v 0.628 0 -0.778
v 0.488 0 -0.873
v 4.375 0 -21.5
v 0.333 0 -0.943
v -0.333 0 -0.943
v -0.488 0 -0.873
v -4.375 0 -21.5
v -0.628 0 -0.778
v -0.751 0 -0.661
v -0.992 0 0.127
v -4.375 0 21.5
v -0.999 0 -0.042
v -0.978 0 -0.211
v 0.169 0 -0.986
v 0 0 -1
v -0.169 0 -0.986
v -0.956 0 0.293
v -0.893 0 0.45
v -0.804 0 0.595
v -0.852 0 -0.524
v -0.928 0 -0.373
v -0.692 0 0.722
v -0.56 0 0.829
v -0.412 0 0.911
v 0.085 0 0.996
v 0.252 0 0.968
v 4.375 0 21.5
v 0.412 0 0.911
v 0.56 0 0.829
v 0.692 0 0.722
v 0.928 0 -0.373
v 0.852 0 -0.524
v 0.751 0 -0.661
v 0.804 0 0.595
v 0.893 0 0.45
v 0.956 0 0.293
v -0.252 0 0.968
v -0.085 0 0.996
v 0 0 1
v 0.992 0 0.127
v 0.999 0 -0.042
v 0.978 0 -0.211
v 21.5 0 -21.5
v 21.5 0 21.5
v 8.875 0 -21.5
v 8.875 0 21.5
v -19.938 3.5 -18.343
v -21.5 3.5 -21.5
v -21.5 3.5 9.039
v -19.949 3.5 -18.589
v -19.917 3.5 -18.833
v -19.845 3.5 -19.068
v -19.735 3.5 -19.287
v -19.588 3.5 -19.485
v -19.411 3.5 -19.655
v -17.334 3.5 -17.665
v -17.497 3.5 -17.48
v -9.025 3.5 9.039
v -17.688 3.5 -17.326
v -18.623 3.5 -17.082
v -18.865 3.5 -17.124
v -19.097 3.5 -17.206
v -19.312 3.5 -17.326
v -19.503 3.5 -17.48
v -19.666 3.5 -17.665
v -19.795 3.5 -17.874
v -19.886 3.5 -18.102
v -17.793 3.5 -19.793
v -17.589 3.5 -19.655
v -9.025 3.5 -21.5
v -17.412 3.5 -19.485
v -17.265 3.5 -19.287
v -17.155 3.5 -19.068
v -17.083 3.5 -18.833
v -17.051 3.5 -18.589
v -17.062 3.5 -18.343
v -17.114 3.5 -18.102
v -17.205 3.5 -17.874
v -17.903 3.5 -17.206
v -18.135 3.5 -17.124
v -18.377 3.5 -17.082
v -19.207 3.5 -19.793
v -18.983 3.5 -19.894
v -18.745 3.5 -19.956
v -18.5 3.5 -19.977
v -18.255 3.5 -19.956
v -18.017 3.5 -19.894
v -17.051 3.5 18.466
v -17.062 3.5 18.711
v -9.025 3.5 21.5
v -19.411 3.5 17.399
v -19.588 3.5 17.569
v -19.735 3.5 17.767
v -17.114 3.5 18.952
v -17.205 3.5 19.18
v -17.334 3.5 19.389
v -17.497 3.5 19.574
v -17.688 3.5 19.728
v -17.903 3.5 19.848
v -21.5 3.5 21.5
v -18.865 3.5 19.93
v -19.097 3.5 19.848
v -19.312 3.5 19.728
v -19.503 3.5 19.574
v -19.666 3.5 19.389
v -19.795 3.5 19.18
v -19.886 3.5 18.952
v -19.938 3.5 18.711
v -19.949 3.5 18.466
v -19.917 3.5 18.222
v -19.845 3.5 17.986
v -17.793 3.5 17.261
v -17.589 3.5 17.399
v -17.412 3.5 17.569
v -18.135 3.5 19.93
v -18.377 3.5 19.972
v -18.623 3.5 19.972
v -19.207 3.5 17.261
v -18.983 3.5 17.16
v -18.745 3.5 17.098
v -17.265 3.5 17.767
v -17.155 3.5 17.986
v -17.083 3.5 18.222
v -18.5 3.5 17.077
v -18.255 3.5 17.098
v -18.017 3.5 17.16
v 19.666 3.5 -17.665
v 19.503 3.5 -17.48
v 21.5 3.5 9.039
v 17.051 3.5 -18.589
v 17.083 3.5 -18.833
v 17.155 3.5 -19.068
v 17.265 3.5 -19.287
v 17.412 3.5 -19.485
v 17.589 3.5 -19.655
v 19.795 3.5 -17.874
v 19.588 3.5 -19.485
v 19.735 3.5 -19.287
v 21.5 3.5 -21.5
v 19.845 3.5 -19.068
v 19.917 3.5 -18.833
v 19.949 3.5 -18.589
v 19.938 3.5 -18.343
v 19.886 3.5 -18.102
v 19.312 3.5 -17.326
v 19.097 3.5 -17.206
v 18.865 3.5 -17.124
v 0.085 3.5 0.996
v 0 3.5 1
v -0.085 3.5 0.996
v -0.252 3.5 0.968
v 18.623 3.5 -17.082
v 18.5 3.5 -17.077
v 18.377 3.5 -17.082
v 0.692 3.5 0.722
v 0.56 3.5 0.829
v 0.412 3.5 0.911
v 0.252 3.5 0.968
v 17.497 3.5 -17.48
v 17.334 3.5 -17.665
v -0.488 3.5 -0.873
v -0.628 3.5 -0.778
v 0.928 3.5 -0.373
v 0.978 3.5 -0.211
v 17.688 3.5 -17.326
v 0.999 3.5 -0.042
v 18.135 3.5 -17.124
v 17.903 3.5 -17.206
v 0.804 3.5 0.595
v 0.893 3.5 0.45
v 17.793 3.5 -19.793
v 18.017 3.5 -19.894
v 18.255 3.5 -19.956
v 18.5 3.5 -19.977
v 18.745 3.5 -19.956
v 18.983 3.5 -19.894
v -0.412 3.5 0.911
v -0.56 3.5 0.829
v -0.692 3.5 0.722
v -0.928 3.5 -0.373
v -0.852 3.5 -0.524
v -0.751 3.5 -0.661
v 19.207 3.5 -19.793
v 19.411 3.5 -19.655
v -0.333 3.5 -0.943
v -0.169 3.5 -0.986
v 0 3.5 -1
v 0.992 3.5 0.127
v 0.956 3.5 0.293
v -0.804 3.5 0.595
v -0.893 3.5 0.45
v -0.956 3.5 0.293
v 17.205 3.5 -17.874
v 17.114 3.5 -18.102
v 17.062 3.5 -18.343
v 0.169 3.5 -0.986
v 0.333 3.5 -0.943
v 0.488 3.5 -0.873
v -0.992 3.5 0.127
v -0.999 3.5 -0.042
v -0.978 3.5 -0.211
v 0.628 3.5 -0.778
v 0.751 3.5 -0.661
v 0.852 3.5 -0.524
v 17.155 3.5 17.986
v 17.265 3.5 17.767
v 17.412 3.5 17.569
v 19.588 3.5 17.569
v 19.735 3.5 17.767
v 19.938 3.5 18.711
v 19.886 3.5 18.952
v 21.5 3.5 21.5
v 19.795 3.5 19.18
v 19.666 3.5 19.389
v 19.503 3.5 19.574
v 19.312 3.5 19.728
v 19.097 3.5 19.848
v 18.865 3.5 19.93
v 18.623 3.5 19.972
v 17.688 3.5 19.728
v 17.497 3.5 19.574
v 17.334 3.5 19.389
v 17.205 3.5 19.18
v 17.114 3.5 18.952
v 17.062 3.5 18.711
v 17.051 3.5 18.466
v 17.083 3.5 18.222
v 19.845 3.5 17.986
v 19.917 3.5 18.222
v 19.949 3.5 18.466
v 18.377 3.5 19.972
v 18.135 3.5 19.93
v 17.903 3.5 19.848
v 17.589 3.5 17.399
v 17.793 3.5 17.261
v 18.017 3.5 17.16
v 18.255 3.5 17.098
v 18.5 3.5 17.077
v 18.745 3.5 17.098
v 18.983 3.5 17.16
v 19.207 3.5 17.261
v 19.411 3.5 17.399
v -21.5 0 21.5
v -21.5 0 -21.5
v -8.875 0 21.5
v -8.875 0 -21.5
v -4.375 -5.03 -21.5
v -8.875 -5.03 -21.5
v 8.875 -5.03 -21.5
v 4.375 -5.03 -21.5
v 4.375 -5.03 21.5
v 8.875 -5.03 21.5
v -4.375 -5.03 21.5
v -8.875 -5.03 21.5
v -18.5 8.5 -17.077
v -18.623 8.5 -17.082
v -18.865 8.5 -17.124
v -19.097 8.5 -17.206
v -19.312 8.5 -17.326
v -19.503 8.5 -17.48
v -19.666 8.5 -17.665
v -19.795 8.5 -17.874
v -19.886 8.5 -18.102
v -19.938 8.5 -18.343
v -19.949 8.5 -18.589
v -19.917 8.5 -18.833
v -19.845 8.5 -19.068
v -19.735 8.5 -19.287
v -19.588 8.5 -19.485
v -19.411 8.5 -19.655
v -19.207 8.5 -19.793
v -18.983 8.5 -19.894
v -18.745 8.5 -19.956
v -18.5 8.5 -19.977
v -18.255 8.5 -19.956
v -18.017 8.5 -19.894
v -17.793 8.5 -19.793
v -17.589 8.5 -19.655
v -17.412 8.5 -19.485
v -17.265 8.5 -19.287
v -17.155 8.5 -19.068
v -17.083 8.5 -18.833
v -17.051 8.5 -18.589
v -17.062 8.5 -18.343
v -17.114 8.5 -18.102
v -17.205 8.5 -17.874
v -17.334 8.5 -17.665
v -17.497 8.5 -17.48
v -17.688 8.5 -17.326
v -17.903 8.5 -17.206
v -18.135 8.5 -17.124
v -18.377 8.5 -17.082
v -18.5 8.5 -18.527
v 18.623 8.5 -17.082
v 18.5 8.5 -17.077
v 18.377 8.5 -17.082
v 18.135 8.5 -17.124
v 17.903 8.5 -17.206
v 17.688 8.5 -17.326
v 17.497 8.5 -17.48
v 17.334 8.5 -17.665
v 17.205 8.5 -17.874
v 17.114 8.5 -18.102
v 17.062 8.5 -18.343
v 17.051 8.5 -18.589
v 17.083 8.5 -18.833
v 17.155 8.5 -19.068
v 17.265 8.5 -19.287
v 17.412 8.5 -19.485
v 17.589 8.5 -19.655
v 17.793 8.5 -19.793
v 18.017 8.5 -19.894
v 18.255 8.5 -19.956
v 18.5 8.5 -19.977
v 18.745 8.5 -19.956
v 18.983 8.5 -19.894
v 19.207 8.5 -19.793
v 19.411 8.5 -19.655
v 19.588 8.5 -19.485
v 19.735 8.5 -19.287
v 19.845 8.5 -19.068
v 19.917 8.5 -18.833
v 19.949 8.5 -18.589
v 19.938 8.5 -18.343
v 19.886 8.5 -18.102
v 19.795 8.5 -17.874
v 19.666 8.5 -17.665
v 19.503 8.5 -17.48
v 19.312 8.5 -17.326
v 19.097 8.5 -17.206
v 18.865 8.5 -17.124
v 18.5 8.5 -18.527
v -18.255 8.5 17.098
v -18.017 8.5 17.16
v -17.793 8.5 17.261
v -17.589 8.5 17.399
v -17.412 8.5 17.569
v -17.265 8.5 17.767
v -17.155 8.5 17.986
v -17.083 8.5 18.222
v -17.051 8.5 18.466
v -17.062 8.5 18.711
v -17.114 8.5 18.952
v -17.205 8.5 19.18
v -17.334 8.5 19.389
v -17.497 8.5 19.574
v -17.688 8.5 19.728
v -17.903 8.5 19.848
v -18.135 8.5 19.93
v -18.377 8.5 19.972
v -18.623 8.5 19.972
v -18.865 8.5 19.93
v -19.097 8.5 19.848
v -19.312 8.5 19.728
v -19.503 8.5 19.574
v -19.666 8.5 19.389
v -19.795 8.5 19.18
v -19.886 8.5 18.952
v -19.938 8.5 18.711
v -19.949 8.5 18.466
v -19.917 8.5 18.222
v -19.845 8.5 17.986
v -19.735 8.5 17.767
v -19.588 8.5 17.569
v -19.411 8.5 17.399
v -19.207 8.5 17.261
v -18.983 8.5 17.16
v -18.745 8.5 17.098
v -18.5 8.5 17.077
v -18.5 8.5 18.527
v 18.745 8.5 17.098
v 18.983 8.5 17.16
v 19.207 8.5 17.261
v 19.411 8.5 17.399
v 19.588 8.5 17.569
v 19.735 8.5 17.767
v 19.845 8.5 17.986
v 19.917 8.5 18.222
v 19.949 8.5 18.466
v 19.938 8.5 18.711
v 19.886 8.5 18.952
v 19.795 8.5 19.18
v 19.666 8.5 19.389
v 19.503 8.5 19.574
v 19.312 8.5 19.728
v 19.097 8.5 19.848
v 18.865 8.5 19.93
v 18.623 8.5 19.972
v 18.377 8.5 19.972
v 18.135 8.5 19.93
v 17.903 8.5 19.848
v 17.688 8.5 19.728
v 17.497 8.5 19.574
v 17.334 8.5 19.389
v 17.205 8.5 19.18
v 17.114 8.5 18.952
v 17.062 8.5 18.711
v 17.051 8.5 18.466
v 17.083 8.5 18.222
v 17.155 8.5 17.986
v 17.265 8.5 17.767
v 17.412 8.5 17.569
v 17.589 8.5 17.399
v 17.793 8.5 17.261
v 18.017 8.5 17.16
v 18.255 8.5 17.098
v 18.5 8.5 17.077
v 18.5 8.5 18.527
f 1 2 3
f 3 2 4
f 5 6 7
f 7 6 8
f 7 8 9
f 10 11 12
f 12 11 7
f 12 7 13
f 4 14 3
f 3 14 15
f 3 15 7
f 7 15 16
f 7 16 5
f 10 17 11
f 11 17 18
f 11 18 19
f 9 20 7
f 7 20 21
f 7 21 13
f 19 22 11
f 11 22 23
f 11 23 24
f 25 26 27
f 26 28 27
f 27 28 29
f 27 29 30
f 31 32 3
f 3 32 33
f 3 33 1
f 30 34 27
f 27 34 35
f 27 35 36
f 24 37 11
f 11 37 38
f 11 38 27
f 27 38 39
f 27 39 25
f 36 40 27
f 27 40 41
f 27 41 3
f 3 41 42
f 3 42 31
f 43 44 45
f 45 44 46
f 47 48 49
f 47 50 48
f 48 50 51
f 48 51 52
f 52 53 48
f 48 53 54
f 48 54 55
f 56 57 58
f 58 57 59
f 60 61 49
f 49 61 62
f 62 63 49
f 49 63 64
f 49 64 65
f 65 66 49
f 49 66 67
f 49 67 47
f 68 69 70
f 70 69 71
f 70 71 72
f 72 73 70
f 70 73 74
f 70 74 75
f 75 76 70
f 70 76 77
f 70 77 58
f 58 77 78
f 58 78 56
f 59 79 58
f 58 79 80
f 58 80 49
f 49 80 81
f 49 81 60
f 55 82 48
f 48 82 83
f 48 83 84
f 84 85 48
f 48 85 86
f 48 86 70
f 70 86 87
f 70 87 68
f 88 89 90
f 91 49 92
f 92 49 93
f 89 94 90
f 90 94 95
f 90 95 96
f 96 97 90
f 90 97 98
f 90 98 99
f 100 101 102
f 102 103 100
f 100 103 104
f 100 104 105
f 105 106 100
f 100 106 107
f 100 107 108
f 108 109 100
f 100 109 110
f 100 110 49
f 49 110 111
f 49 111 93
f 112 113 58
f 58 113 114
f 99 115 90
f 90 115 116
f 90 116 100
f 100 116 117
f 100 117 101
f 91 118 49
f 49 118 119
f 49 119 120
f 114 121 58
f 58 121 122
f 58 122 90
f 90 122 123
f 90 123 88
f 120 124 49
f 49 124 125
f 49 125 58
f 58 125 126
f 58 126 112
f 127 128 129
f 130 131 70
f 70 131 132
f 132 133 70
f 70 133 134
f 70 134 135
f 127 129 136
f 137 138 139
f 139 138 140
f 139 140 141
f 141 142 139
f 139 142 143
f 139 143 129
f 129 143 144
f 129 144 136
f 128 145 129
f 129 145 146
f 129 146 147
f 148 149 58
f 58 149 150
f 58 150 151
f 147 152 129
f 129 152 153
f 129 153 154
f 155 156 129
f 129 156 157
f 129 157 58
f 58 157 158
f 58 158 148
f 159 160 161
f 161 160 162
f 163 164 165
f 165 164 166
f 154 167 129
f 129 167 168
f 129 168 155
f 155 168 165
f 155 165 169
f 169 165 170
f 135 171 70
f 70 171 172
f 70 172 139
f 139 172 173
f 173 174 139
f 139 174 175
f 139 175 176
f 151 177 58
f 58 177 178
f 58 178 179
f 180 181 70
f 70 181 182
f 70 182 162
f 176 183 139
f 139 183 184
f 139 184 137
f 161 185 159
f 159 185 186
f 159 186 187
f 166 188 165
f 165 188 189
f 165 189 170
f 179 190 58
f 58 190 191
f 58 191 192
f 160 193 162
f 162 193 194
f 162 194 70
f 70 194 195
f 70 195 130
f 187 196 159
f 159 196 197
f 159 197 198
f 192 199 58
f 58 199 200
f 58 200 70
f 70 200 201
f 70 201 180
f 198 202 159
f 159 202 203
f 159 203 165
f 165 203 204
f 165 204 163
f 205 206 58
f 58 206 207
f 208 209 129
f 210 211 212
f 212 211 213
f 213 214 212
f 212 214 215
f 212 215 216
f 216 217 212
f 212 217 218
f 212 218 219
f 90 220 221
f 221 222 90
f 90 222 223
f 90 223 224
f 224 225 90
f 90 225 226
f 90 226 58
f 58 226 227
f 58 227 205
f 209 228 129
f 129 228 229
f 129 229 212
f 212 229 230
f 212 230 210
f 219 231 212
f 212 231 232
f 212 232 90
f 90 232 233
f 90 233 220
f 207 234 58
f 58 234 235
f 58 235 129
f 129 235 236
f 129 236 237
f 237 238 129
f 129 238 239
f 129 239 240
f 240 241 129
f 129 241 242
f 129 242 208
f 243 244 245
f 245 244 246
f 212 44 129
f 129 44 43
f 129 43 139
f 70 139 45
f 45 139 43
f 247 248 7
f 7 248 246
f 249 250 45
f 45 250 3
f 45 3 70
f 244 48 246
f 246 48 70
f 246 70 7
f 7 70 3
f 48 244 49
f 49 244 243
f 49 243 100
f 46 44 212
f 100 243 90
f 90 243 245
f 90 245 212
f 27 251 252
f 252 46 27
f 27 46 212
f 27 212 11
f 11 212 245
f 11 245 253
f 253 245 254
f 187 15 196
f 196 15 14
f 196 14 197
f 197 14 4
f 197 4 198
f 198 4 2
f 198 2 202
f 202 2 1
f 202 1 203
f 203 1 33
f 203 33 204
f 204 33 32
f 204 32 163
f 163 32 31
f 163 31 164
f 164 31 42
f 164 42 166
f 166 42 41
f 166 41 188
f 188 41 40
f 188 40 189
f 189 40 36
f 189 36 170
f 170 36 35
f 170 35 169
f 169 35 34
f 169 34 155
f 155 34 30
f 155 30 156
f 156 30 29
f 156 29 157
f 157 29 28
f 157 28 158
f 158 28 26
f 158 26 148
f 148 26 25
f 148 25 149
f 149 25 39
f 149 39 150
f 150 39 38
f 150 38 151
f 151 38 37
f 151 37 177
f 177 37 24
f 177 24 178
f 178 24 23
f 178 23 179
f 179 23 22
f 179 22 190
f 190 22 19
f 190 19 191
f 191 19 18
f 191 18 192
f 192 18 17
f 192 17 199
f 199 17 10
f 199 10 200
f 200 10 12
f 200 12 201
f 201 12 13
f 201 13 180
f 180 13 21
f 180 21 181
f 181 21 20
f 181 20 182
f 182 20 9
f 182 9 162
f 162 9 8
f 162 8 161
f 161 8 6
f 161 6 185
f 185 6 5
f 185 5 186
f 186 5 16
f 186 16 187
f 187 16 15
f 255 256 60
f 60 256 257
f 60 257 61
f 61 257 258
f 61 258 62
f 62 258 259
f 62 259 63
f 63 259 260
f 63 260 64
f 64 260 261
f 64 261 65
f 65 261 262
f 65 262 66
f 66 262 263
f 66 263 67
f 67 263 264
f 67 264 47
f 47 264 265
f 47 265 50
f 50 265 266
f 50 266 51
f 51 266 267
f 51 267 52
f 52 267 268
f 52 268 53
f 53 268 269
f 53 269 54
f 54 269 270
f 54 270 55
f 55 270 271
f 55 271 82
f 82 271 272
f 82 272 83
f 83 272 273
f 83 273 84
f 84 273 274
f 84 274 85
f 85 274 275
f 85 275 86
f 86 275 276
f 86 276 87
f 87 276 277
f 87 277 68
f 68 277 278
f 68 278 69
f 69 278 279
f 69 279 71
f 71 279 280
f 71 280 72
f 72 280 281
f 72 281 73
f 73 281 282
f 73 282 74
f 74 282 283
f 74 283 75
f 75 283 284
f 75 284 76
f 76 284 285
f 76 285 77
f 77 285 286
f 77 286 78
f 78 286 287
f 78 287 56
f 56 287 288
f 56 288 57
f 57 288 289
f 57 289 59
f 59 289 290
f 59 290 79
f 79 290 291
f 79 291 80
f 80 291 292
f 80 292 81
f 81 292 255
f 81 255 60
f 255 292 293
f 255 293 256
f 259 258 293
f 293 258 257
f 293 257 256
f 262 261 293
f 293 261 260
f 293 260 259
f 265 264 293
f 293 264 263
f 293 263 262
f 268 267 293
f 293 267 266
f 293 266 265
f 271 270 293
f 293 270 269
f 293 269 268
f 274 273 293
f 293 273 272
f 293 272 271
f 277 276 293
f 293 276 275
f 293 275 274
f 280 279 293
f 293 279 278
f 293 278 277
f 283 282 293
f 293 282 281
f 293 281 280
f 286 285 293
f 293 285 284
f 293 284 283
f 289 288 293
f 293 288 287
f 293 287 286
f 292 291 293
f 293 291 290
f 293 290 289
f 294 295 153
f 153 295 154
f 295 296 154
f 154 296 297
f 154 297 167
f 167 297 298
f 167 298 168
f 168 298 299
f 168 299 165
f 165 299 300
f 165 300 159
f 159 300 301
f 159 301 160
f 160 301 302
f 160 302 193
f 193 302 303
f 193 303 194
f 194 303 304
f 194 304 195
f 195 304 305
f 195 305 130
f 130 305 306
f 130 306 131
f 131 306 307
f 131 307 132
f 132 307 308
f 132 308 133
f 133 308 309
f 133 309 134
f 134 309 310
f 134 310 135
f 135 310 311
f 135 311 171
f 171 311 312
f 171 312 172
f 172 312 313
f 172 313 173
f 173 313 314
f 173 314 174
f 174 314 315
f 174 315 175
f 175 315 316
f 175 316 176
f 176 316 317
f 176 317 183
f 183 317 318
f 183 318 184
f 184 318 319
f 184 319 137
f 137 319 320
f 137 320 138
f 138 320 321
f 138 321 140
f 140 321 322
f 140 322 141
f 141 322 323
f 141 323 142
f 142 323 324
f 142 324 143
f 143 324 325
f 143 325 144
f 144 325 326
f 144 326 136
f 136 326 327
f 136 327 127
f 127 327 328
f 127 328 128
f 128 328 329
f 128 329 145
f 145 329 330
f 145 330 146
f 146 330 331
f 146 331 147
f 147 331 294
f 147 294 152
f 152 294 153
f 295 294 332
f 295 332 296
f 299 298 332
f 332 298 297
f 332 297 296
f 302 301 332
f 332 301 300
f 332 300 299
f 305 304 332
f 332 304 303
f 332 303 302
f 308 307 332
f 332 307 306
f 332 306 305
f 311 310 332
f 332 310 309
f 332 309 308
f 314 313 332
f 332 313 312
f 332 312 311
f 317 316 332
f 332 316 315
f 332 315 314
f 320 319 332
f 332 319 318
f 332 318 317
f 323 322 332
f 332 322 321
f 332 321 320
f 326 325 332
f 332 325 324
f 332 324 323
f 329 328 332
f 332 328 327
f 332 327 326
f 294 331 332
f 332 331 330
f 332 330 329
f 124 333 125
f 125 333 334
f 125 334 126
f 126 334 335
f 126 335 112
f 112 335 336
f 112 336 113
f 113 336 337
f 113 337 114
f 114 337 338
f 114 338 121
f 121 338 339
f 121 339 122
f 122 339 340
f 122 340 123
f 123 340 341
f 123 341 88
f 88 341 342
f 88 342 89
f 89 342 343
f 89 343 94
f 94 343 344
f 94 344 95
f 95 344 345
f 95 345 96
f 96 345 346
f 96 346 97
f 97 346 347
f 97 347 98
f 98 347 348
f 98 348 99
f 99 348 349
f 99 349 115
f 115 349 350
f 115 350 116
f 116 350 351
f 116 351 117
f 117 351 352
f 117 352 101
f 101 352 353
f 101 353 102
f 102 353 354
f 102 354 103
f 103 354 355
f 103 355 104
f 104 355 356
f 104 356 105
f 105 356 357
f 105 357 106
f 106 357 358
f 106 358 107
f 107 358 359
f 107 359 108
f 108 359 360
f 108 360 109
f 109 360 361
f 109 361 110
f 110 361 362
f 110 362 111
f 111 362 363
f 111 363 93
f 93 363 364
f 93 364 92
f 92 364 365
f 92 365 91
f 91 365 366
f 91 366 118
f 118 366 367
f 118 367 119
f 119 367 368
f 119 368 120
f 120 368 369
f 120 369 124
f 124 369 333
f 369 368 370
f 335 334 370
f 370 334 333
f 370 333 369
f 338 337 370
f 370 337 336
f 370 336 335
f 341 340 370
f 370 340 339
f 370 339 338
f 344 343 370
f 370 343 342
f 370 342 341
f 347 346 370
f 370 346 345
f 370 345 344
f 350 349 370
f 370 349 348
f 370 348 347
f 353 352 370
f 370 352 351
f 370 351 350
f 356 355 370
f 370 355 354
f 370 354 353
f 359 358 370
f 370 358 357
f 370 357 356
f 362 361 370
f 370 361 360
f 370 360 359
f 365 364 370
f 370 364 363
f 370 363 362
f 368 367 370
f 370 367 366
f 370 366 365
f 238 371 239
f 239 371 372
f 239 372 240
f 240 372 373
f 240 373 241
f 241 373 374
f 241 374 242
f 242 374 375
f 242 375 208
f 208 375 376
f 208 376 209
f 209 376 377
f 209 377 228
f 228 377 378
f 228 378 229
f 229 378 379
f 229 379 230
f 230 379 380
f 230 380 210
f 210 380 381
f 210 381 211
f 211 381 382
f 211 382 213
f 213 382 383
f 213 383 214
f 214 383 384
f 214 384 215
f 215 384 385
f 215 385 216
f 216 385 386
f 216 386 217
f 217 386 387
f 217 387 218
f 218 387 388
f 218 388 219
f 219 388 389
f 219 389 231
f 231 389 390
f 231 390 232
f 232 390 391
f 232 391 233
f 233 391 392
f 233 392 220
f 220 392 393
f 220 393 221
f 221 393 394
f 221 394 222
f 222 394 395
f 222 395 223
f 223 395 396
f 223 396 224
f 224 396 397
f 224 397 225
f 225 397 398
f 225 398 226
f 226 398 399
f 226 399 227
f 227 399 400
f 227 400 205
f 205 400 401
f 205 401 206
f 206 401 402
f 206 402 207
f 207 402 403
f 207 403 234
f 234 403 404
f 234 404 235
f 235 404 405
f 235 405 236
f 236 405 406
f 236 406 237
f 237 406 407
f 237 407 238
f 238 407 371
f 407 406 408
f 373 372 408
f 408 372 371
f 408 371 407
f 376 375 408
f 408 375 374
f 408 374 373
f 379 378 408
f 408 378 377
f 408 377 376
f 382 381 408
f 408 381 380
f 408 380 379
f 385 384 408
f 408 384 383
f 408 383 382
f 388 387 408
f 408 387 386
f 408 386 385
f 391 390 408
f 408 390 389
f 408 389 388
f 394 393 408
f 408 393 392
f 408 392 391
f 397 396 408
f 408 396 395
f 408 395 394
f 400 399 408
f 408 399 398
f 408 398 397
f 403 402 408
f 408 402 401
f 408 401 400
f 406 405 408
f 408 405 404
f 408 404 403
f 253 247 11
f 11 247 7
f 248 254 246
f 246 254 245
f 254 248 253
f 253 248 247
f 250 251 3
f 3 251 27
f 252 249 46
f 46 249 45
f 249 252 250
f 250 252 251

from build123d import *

# Parameters (mm, degrees)
SKETCH1_W                                  = 43
SKETCH1_H                                  = 43
SKETCH1_R                                  = 1
BOSS_EXTRUDE1_DEPTH                        = 3.5
SKETCH3_R                                  = 1.45
BOSS_EXTRUDE2_DEPTH                        = 5
MIRROR2_AT_THE_SECOND_PLANE_COPY_1_SKETC_R = 1.45
MIRROR2_AT_THE_SECOND_PLANE_COPY_1_DEPTH   = 5
SKETCH4_W                                  = 4.5
SKETCH4_H                                  = 43
BOSS_EXTRUDE3_DEPTH                        = 5.03


with BuildPart() as part:
    # Sketch1 → Boss-Extrude1 (new body)
    with BuildSketch(Plane(origin=(0, 0, 0), x_dir=(1, 0, 0), z_dir=(0, 1, 0))):
        Rectangle(SKETCH1_W, SKETCH1_H)
        with Locations(Location((0, 0, 0), (0, 0, 270))):
            Circle(SKETCH1_R, mode=Mode.SUBTRACT)
    extrude(amount=BOSS_EXTRUDE1_DEPTH)

    # Sketch3 → Boss-Extrude2 (add)
    with BuildSketch(Plane(origin=(0, 3.5, 0), x_dir=(1, 0, 0), z_dir=(0, 1, 0))):
        with Locations(Location((-18.5, 18.527041475, 0), (0, 0, 90))):
            Circle(SKETCH3_R)
    boss_extrude2 = extrude(amount=BOSS_EXTRUDE2_DEPTH)

    # Mirror2: Boss-Extrude2 across plane
    add(boss_extrude2.mirror(Plane.XY))

    # Mirror2 at the second plane: Boss-Extrude2 across plane
    add(boss_extrude2.mirror(Plane(origin=(0, 0, 0), x_dir=(0, 0, 1), z_dir=(1, 0, 0))))

    # Mirror2 at the second plane copy 1 sketc → Mirror2 at the second plane copy 1 (add)
    with BuildSketch(Plane(origin=(0, 3.5, 0), x_dir=(-1, 0, 0), z_dir=(0, 1, 0))):
        with Locations(Location((-18.5, 18.527041475, 0), (0, 0, 90))):
            Circle(MIRROR2_AT_THE_SECOND_PLANE_COPY_1_SKETC_R)
    extrude(amount=MIRROR2_AT_THE_SECOND_PLANE_COPY_1_DEPTH)

    # Sketch4 → Boss-Extrude3 (add)
    with BuildSketch(Plane.XZ):
        with Locations((-6.625, 0)):
            Rectangle(SKETCH4_W, SKETCH4_H)
    boss_extrude3 = extrude(amount=BOSS_EXTRUDE3_DEPTH)

    # Mirror3: Boss-Extrude3 across plane
    add(boss_extrude3.mirror(Plane(origin=(0, 0, 0), x_dir=(0, 0, 1), z_dir=(1, 0, 0))))


solid = part.part
